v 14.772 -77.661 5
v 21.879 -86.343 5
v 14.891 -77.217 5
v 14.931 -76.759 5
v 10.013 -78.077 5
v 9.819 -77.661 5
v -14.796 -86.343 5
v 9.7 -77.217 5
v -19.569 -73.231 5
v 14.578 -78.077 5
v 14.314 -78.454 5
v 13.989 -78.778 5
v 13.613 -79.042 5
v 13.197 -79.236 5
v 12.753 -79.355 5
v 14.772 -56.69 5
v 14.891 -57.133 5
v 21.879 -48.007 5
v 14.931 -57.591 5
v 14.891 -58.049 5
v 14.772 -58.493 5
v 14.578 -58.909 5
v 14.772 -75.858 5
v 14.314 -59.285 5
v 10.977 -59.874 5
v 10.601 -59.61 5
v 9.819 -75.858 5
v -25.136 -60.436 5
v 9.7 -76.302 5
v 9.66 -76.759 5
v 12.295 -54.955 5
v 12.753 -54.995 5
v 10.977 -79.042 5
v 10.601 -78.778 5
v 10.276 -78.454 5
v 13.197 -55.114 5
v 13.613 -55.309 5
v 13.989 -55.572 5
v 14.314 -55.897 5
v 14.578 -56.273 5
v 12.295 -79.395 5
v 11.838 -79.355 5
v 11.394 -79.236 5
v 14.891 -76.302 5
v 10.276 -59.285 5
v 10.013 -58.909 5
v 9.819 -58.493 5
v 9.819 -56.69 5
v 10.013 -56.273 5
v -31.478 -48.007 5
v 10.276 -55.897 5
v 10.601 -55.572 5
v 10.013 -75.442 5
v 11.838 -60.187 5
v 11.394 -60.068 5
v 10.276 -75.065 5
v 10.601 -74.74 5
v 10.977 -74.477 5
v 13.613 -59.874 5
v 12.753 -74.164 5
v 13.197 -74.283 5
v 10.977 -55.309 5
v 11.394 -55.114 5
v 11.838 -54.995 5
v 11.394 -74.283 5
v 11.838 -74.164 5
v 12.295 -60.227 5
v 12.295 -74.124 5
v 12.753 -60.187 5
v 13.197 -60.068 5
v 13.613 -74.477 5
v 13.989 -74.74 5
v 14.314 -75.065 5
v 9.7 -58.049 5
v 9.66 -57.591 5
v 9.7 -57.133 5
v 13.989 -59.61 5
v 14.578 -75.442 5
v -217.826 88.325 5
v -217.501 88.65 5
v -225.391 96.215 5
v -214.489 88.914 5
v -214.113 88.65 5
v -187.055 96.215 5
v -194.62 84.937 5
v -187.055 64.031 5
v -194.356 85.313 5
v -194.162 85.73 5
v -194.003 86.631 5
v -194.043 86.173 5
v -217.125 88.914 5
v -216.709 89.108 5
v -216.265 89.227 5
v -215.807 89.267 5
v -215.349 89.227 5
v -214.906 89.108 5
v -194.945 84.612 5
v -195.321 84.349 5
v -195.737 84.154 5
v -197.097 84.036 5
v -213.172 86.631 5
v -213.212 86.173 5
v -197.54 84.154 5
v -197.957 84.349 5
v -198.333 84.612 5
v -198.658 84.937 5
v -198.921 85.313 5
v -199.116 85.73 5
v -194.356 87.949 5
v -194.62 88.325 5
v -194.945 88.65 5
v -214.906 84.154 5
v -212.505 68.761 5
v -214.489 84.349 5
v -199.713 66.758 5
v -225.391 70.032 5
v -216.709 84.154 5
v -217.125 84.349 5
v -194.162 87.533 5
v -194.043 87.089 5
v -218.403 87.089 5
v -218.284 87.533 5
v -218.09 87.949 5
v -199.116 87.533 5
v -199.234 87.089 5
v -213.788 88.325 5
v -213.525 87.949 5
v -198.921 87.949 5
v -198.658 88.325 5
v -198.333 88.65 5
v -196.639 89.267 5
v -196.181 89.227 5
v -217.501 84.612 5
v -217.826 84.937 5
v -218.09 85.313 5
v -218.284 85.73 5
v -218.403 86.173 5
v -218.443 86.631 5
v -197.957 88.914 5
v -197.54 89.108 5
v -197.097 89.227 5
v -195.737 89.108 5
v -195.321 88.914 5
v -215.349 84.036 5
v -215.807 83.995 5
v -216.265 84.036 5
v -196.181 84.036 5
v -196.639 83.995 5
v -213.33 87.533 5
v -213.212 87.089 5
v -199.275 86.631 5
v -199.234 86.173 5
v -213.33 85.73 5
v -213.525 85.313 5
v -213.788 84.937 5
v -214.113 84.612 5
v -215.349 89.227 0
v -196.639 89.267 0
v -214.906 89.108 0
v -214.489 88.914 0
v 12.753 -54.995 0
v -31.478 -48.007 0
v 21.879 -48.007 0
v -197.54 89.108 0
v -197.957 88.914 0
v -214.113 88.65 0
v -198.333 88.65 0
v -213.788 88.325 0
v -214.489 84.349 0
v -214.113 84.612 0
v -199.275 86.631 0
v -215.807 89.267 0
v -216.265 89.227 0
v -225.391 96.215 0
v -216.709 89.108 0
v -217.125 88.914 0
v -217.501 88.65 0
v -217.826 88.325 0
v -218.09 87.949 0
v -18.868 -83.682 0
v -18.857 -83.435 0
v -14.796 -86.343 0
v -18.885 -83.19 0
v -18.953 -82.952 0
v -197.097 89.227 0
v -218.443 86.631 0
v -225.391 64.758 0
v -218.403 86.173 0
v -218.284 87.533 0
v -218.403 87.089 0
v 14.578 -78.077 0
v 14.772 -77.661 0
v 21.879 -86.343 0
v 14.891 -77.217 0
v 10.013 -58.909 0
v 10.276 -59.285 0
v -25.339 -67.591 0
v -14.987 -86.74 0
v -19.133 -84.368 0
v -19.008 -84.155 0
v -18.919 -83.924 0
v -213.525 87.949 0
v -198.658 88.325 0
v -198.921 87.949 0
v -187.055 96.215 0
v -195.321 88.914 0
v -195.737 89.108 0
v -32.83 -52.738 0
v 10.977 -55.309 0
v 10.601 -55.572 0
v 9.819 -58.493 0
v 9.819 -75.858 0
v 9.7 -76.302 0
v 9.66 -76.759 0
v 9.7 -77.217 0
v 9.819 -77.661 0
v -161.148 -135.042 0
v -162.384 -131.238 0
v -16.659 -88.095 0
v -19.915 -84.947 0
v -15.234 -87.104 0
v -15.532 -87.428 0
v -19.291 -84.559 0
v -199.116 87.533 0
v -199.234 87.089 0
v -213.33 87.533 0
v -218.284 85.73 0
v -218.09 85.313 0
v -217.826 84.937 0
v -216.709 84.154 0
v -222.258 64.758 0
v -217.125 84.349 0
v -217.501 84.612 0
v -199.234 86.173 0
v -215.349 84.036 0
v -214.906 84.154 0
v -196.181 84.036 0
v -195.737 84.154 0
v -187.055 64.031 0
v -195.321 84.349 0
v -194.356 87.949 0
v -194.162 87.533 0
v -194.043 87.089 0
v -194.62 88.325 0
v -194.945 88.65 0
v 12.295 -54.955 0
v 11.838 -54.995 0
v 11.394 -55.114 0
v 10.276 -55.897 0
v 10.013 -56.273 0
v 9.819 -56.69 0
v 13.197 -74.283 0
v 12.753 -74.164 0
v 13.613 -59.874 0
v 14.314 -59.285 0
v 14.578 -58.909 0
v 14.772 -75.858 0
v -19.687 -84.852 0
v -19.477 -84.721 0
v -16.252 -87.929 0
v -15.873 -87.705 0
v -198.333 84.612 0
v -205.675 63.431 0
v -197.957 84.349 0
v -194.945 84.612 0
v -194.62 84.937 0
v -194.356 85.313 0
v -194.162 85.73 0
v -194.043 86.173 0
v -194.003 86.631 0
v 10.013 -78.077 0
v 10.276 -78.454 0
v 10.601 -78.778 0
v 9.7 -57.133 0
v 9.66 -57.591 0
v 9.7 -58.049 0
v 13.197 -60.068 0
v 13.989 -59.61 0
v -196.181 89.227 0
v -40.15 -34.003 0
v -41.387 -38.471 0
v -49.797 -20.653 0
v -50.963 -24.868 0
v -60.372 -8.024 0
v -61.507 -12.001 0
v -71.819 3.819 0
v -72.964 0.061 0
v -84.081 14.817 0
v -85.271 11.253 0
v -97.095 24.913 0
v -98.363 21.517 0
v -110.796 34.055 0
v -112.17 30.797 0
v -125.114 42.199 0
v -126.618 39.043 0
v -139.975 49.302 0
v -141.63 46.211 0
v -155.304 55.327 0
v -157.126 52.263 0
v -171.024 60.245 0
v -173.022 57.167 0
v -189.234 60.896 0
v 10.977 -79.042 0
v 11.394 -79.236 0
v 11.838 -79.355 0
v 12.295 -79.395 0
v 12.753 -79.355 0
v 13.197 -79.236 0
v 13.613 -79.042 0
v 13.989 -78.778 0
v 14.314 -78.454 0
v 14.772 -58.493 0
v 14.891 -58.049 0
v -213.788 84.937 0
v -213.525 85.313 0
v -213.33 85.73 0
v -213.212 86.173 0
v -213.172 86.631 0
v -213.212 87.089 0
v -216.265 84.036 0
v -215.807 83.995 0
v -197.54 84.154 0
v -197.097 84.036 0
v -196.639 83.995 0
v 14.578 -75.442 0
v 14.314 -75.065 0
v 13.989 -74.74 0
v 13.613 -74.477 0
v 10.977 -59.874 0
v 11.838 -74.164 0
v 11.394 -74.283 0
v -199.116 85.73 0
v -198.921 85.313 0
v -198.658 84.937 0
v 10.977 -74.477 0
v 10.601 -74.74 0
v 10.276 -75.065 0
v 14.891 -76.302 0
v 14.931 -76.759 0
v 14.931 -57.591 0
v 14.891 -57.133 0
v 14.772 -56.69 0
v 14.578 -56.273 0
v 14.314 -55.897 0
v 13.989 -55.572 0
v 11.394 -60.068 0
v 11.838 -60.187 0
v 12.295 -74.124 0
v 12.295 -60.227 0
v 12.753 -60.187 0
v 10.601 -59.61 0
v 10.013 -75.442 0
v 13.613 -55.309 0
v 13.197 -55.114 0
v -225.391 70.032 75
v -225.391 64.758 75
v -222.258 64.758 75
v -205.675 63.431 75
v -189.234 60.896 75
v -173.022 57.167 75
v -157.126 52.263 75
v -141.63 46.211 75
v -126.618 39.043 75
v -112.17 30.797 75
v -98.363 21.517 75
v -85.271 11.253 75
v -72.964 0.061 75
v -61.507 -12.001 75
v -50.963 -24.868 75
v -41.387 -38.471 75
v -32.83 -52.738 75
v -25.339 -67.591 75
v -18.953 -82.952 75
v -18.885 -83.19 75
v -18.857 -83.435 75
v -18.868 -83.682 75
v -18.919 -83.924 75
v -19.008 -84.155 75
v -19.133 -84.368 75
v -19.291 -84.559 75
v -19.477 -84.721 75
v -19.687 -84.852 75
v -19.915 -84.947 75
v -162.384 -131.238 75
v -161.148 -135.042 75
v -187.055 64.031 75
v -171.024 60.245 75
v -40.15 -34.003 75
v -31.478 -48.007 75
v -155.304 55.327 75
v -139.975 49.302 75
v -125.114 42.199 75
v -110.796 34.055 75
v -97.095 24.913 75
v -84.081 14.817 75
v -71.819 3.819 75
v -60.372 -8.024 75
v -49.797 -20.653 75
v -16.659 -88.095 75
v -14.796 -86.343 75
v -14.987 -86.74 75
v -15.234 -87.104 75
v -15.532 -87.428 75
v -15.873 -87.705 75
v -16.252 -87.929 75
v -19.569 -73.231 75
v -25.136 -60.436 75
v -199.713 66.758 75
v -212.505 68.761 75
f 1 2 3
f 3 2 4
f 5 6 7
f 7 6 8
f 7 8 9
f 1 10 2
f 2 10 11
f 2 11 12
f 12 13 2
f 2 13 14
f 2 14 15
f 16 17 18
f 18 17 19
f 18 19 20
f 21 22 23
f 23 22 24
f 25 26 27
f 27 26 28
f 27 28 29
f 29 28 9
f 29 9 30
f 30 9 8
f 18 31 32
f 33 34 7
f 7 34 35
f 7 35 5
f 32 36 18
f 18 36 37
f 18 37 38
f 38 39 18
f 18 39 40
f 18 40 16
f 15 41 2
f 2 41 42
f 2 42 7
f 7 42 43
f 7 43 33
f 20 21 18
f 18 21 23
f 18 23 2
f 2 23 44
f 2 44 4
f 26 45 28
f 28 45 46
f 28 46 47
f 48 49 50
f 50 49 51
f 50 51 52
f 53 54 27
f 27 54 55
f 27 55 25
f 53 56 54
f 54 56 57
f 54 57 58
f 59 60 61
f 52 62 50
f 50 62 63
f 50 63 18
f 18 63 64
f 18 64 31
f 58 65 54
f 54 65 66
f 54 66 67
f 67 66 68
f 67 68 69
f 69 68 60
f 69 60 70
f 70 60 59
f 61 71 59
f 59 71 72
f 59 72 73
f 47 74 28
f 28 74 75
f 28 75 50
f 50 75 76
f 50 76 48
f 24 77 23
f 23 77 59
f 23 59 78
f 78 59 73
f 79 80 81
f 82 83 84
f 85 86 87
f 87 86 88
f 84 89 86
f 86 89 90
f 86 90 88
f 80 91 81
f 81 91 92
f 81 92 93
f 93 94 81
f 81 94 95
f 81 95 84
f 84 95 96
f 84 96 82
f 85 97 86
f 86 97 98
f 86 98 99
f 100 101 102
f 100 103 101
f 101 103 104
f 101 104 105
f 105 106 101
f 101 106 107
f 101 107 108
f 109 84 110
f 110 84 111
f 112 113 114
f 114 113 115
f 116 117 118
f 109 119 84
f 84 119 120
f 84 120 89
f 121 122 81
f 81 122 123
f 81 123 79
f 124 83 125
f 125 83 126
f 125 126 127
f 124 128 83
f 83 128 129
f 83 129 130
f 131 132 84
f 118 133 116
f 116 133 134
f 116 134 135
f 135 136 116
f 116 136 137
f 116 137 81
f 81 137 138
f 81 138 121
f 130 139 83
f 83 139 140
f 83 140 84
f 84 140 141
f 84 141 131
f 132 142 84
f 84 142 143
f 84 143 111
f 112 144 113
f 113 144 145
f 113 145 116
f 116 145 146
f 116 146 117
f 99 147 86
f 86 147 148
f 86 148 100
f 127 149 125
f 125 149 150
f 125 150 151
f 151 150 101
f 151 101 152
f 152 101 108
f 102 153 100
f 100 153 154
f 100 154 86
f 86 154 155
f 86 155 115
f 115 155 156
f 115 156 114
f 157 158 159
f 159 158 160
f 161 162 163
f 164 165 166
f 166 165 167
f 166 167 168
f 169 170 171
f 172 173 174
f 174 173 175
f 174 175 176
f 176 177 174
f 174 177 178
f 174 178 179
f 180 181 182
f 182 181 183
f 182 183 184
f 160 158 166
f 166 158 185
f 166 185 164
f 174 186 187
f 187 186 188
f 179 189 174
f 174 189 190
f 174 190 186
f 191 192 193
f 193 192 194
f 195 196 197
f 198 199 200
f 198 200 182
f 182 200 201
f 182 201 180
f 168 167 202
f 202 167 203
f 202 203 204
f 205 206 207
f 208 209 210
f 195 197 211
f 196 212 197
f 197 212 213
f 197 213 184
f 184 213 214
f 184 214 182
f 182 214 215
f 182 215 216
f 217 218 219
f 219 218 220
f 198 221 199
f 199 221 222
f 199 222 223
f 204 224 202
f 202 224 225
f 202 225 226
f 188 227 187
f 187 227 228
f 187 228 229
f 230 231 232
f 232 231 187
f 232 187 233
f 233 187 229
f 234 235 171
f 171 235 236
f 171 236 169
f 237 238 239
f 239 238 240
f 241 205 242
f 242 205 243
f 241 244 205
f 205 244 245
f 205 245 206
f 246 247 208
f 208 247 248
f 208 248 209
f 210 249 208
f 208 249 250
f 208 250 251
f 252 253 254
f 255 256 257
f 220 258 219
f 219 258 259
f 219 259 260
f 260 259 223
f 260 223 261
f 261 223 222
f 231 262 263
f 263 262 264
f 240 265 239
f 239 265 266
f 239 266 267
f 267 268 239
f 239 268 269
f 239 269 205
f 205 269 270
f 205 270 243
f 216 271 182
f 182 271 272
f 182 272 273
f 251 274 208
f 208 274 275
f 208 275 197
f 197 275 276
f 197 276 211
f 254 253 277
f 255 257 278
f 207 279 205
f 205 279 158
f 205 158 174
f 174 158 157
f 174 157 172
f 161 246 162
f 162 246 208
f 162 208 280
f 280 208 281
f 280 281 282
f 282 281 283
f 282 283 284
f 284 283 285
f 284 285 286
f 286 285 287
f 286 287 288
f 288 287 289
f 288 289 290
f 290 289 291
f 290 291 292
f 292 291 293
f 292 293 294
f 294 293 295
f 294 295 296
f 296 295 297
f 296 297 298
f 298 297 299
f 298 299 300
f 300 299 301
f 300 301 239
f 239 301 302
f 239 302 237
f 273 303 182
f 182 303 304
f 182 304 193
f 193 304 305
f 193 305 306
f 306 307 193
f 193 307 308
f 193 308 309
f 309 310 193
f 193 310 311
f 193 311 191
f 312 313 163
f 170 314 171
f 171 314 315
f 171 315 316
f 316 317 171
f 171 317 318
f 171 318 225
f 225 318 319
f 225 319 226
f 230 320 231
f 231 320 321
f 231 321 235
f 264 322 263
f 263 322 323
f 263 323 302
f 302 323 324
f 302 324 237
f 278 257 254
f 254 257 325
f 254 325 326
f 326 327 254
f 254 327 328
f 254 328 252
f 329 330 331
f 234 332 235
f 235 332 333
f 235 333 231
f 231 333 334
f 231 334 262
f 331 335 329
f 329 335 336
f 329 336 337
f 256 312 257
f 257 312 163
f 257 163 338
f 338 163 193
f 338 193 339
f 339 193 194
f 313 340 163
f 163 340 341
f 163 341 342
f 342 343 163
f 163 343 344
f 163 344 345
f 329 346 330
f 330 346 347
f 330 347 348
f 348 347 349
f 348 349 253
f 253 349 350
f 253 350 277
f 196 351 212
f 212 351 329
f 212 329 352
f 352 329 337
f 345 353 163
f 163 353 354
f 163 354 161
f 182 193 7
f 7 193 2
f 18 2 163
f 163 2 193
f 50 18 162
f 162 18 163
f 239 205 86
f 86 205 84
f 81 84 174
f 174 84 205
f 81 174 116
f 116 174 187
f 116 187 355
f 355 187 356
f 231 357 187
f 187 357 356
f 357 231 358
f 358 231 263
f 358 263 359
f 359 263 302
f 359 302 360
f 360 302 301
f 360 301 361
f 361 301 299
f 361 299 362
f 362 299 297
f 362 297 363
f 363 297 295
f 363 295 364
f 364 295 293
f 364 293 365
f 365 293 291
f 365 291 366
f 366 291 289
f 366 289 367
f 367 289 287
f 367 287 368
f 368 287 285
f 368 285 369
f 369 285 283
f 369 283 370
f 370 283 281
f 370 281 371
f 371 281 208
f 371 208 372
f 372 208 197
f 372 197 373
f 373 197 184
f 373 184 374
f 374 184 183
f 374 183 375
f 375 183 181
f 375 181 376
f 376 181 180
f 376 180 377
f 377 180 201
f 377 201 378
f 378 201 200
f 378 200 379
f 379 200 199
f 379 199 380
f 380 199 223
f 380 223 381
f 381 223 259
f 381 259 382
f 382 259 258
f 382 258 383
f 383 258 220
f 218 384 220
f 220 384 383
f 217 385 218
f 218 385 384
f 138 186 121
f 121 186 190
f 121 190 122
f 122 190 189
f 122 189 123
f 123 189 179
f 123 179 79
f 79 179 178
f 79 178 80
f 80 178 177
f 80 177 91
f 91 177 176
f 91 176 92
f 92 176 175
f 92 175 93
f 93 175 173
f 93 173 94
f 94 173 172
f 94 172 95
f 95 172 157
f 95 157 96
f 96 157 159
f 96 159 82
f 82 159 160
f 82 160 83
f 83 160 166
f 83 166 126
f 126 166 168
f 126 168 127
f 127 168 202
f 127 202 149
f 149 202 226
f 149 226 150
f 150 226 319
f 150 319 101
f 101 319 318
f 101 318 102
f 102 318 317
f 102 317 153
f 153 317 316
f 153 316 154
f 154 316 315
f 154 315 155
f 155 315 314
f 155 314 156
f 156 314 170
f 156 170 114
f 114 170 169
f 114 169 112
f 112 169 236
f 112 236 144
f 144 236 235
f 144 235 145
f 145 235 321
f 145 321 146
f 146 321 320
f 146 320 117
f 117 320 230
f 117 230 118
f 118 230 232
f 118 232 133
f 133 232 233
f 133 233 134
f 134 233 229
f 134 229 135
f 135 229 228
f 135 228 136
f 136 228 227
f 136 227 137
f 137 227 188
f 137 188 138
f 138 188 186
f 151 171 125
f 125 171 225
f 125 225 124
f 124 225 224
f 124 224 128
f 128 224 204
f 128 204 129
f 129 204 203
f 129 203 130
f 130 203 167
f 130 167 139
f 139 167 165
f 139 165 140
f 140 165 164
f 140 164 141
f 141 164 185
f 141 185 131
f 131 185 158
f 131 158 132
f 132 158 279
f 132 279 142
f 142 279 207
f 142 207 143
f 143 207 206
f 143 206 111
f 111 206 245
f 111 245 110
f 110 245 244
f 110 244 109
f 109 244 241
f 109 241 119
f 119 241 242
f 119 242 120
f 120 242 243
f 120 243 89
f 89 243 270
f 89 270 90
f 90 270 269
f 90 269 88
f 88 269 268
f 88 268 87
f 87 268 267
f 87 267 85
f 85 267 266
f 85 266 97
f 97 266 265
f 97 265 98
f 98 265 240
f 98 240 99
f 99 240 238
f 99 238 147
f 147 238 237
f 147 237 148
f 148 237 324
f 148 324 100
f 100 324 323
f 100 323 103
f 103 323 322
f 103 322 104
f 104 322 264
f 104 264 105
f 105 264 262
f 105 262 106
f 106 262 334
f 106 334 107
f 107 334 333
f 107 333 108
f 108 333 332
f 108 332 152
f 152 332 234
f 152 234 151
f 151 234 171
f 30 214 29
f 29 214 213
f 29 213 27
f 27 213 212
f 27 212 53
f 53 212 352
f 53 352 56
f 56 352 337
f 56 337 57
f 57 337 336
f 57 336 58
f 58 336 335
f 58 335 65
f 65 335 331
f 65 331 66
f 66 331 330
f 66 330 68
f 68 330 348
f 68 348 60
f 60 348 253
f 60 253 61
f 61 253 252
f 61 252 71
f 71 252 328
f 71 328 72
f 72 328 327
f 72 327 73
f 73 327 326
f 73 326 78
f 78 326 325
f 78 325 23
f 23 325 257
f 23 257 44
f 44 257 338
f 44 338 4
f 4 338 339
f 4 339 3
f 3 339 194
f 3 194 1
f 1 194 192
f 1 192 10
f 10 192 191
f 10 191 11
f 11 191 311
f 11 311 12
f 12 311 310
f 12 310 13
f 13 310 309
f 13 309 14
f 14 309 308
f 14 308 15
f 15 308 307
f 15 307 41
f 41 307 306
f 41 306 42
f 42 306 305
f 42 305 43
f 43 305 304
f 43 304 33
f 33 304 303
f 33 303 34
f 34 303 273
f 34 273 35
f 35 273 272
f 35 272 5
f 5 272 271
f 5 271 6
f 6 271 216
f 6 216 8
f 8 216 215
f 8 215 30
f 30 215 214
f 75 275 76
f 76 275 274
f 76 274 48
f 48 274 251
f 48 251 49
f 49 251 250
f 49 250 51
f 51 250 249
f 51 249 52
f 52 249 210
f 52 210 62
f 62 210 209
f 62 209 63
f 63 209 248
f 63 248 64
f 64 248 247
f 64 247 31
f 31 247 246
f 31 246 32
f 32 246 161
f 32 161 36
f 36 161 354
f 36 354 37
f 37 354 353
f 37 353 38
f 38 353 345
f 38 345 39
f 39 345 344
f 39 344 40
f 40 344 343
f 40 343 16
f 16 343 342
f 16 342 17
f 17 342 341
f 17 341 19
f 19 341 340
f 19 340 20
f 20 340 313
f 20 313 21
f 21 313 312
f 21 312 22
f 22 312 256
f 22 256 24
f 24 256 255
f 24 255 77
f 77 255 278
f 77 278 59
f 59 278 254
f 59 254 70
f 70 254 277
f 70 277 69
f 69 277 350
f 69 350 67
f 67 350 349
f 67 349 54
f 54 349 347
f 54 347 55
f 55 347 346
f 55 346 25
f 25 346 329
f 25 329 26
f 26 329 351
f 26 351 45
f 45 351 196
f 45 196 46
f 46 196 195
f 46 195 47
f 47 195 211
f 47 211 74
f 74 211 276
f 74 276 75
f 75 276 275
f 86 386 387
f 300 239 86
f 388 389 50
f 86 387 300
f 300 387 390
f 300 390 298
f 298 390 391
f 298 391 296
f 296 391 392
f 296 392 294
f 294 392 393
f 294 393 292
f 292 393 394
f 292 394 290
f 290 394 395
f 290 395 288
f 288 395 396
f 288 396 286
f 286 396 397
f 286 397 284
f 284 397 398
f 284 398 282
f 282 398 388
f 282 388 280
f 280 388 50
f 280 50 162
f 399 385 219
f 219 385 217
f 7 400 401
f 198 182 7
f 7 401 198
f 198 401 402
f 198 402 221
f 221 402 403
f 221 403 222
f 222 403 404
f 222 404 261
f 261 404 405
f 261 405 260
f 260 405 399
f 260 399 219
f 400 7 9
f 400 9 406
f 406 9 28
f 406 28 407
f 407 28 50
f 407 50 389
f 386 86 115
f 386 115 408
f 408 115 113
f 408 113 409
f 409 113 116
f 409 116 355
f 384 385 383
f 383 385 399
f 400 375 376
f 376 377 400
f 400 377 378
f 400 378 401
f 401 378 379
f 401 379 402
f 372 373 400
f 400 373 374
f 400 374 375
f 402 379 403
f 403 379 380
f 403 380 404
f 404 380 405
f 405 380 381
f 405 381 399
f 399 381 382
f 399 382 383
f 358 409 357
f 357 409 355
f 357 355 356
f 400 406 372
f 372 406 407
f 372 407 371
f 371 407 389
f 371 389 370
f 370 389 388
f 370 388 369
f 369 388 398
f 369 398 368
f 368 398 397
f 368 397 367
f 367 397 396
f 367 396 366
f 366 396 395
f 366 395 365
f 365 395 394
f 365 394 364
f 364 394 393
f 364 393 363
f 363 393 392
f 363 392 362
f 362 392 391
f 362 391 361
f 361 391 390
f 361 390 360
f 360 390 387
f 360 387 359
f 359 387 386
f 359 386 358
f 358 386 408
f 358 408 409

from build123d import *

# Parameters (mm, degrees)
SKETCH_1_R          = 2.6356377382591165
SKETCH_1_R_2        = 2.6356377382590894
SKETCH_1_R_3        = 2.6356377382590765
SKETCH_1_R_4        = 2.635637738259072
EXTRUDE_1_DEPTH     = 5
EXTRUDE_START       = -50
EXTRUDE_2_DEPTH     = 50
FILLET_1_R          = 3
EXTRUDE_START_2     = -70
EXTRUDE_3_DEPTH     = 70
FILLET_2_R          = 3
EXTRUDE_4_DEPTH     = 70
SKETCH_5_W          = 89.0633311885125
SKETCH_5_H          = 295.3242731829526
CUT_EXTRUDE_1_DEPTH = 275.0000000000001


with BuildPart() as part:
    # 스케치1 → 보스-돌출1 (new body)
    with BuildSketch(Plane.XY):
        with BuildLine():
            Line((-161.90972688439834, -132.69604313286513), (-19.251249440125157, -86.34349397662291))
            Line((-19.251249440125157, -86.34349397662291), (21.87942689934009, -86.34349397662294))
            Line((21.87942689934009, -86.34349397662294), (21.87942689934009, -48.00694505649064))
            Line((21.87942689934009, -48.00694505649064), (-33.73868544416714, -48.00694505649063))
            ThreePointArc((-33.73868544416714, -48.00694505649063), (-98.53802186230143, 23.53498808064043), (-187.05476471538051, 62.031590942583435))
            Line((-187.05476471538051, 62.031590942583435), (-187.05476471538051, 96.21524094975992))
            Line((-187.05476471538051, 96.21524094975992), (-225.3913136355128, 96.21524094975996))
            Line((-225.3913136355128, 96.21524094975996), (-225.3913136355128, 64.75798291501623))
            Line((-225.3913136355128, 64.75798291501623), (-222.25805676193863, 64.75798291501623))
            ThreePointArc((-222.25805676193863, 64.75798291501623), (-98.36294899741762, 21.51708345847385), (-18.952715979656908, -82.95199333393413))
            ThreePointArc((-18.952715979656908, -82.95199333393413), (-19.008196216614675, -84.1549577478759), (-19.915396046499477, -84.94691097033295))
            Line((-19.915396046499477, -84.94691097033295), (-162.3835926892786, -131.2376341463548))
            Line((-162.3835926892786, -131.2376341463548), (-161.90972688439834, -132.69604313286513))
        make_face()
        with Locations((-215.8071764054797, 86.63110371972729)):
            Circle(SKETCH_1_R, mode=Mode.SUBTRACT)
        with Locations((-196.63890194541358, 86.6311037197273)):
            Circle(SKETCH_1_R_2, mode=Mode.SUBTRACT)
        with Locations((12.295289669307014, -76.75935674658983)):
            Circle(SKETCH_1_R_3, mode=Mode.SUBTRACT)
        with Locations((12.295289669307014, -57.5910822865237)):
            Circle(SKETCH_1_R_4, mode=Mode.SUBTRACT)
    extrude(amount=EXTRUDE_1_DEPTH)

    # 스케치2 → 보스-돌출2 (add)
    with BuildSketch(Plane.XY.offset(5).offset(EXTRUDE_START)):
        with BuildLine():
            Line((-161.90972688439834, -132.69604313286513), (-19.25124944012515, -86.34349397662291))
            Line((-19.251249440125157, -86.34349397662291), (-17.716653821091654, -86.34349397662291))
            ThreePointArc((-17.71665382109279, -86.34349397662707), (-18.32795901714934, -84.64529234814141), (-18.952715979656915, -82.95199333393413))
            ThreePointArc((-18.95271597965692, -82.95199333393413), (-19.008196216614667, -84.1549577478759), (-19.915396046499477, -84.94691097033295))
            Line((-19.915396046499477, -84.94691097033295), (-162.3835926892786, -131.2376341463548))
            Line((-162.3835926892786, -131.2376341463548), (-161.90972688439834, -132.69604313286513))
        make_face()
        with BuildLine():
            ThreePointArc((-18.952715979656915, -82.95199333393413), (-18.32795901714934, -84.64529234814141), (-17.71665382109279, -86.34349397662707))
            Line((-17.716653821091654, -86.34349397662291), (-16.089863152321414, -86.34349397662291))
            ThreePointArc((-16.08986315232295, -86.34349397662834), (-24.029465542915716, -66.76788414274672), (-33.7386854441672, -48.006945056490636))
            ThreePointArc((-33.7386854441672, -48.006945056490636), (-98.53802186230149, 23.53498808064043), (-187.0547647153805, 62.03159094258342))
            ThreePointArc((-187.0547647153805, 62.03159094258342), (-206.13076342964123, 65.02753015483808), (-225.39131363551047, 66.40614702590713))
            Line((-225.3913136355128, 66.4061470259071), (-225.3913136355128, 64.87202248366495))
            ThreePointArc((-225.3913136355129, 64.87202248366495), (-223.82448876300626, 64.82039980470964), (-222.25805676193858, 64.75798291501621))
            ThreePointArc((-222.25805676193858, 64.75798291501621), (-98.36294899741759, 21.51708345847382), (-18.952715979656915, -82.95199333393413))
        make_face()
    extrude(amount=EXTRUDE_2_DEPTH)

    # 필렛1
    # the kernel refuses this fillet: 3 mm, written as the material it takes off along each edge
    with BuildSketch(Plane(origin=(-16.089863152324853, -86.34349397662284, -55.26319649463599), x_dir=(-0.3411564748454367, 0.9400065210789948, 0), z_dir=(0, 0, 1))) as fillet_1_piece_1:
        with BuildLine():
            CenterArc((4.078395273634998, 2.9998795453949634), FILLET_1_R, 180.53774443113053, 89.97569611298013)
            Line((1.0785274015705548, 2.971723726182023), (0, 0))
            ThreePointArc((0, 0), (2.052639298925323, -0.00919714593498524), (4.105278597850862, -9e-17))
        make_face()
    extrude(amount=55.26319649463599, mode=Mode.SUBTRACT)

    # 스케치3 → 보스-돌출3 (add)
    with BuildSketch(Plane.XY.offset(5).offset(EXTRUDE_START_2)):
        with BuildLine():
            Line((-19.25124944012515, -86.34349397662291), (-161.90972688439834, -132.69604313286513))
            Line((-161.90972688439834, -132.69604313286513), (-161.14752471177883, -135.0418602115354))
            Line((-161.14752471177883, -135.0418602115354), (-13.733764686030042, -87.14422608341849))
            ThreePointArc((-13.73376468603007, -87.1442260834185), (-13.872485363120319, -86.74373244280719), (-14.011940562426247, -86.34349397662855))
            Line((-14.011940562424655, -86.34349397662291), (-19.251249440125157, -86.34349397662291))
        make_face()
        with BuildLine():
            Line((-33.738685444167196, -48.00694505649064), (-31.477883861441427, -48.00694505649064))
            ThreePointArc((-31.477883861440404, -48.00694505648765), (-97.09546483661316, 24.91254341428484), (-187.05476471538535, 64.03086517268349))
            Line((-187.05476471538051, 64.03086517268437), (-187.05476471538051, 62.03159094258343))
            ThreePointArc((-187.0547647153805, 62.03159094258345), (-98.53802186230146, 23.53498808064043), (-33.738685444167174, -48.00694505649062))
        make_face()
        with BuildLine():
            Line((-162.3835926892786, -131.2376341463548), (-161.90972688439834, -132.69604313286513))
            Line((-161.90972688439834, -132.69604313286513), (-19.25124944012515, -86.34349397662291))
            Line((-19.251249440125157, -86.34349397662291), (-14.011940562424655, -86.34349397662291))
            ThreePointArc((-14.011940562426247, -86.34349397662855), (-21.86923355209842, -66.77626462229537), (-31.477883861440404, -48.00694505648765))
            Line((-31.477883861441427, -48.00694505649064), (-33.738685444167196, -48.00694505649064))
            ThreePointArc((-33.738685444167174, -48.00694505649062), (-98.53802186230146, 23.53498808064043), (-187.0547647153805, 62.03159094258345))
            Line((-187.05476471538051, 62.03159094258343), (-187.05476471538051, 64.03086517268437))
            ThreePointArc((-187.05476471538535, 64.03086517268349), (-206.13235139969905, 67.00089307897522), (-225.3913136355111, 68.36755070296968))
            Line((-225.3913136355128, 68.36755070296962), (-225.3913136355128, 64.75798291501623))
            Line((-225.3913136355128, 64.75798291501623), (-222.2580567619386, 64.75798291501621))
            ThreePointArc((-222.2580567619386, 64.75798291501624), (-98.36294899741762, 21.51708345847382), (-18.952715979656915, -82.95199333393413))
            ThreePointArc((-18.95271597965692, -82.95199333393413), (-19.008196216614667, -84.1549577478759), (-19.915396046499477, -84.94691097033295))
            Line((-19.915396046499477, -84.94691097033295), (-162.3835926892786, -131.2376341463548))
        make_face()
    extrude(amount=EXTRUDE_3_DEPTH)

    # 필렛2
    fillet_2_edges = [part.edges().sort_by_distance(p)[0] for p in [
        (-13.733764686030042, -87.14422608341849, -30),
    ]]
    fillet(fillet_2_edges, radius=FILLET_2_R)

    # 스케치4 → 보스-돌출4 (add)
    with BuildSketch(Plane.XY.offset(5)):
        with BuildLine():
            ThreePointArc((-16.659298654257338, -88.09478969169395), (-15.531728736228363, -87.42760572202484), (-14.796031724606808, -86.34349397662291))
            ThreePointArc((-14.796031724606877, -86.34349397662292), (-22.25453577932595, -66.79124041647023), (-31.477883861438727, -48.006945056490636))
            ThreePointArc((-31.4778838614387, -48.006945056490636), (-97.09546483660972, 24.912543414282396), (-187.05476471538054, 64.03086517268255))
            ThreePointArc((-187.0547647153805, 64.03086517268252), (-206.09486736019076, 67.8503266656956), (-225.3913136355128, 70.03228816057364))
            Line((-225.3913136355128, 70.03228816057364), (-225.3913136355128, 64.75798291501623))
            Line((-225.3913136355128, 64.75798291501623), (-222.2580567619386, 64.75798291501621))
            ThreePointArc((-222.2580567619386, 64.75798291501624), (-98.36294899741762, 21.51708345847382), (-18.952715979656915, -82.95199333393413))
            ThreePointArc((-18.95271597965692, -82.95199333393413), (-19.008196216614667, -84.1549577478759), (-19.915396046499477, -84.94691097033295))
            Line((-19.915396046499477, -84.94691097033295), (-162.3835926892786, -131.2376341463548))
            Line((-162.3835926892786, -131.2376341463548), (-161.14752471177886, -135.0418602115354))
            Line((-161.14752471177886, -135.0418602115354), (-16.659298654257327, -88.09478969169395))
        make_face()
    extrude(amount=EXTRUDE_4_DEPTH)

    # 스케치5 → 컷-돌출1 (cut)
    with BuildSketch(Plane.ZY.offset(225.3913136355128)):
        with Locations((-44.53166559425625, -79.29458588850659)):
            Rectangle(SKETCH_5_W, SKETCH_5_H)
    extrude(amount=-CUT_EXTRUDE_1_DEPTH, mode=Mode.SUBTRACT)


solid = part.part
